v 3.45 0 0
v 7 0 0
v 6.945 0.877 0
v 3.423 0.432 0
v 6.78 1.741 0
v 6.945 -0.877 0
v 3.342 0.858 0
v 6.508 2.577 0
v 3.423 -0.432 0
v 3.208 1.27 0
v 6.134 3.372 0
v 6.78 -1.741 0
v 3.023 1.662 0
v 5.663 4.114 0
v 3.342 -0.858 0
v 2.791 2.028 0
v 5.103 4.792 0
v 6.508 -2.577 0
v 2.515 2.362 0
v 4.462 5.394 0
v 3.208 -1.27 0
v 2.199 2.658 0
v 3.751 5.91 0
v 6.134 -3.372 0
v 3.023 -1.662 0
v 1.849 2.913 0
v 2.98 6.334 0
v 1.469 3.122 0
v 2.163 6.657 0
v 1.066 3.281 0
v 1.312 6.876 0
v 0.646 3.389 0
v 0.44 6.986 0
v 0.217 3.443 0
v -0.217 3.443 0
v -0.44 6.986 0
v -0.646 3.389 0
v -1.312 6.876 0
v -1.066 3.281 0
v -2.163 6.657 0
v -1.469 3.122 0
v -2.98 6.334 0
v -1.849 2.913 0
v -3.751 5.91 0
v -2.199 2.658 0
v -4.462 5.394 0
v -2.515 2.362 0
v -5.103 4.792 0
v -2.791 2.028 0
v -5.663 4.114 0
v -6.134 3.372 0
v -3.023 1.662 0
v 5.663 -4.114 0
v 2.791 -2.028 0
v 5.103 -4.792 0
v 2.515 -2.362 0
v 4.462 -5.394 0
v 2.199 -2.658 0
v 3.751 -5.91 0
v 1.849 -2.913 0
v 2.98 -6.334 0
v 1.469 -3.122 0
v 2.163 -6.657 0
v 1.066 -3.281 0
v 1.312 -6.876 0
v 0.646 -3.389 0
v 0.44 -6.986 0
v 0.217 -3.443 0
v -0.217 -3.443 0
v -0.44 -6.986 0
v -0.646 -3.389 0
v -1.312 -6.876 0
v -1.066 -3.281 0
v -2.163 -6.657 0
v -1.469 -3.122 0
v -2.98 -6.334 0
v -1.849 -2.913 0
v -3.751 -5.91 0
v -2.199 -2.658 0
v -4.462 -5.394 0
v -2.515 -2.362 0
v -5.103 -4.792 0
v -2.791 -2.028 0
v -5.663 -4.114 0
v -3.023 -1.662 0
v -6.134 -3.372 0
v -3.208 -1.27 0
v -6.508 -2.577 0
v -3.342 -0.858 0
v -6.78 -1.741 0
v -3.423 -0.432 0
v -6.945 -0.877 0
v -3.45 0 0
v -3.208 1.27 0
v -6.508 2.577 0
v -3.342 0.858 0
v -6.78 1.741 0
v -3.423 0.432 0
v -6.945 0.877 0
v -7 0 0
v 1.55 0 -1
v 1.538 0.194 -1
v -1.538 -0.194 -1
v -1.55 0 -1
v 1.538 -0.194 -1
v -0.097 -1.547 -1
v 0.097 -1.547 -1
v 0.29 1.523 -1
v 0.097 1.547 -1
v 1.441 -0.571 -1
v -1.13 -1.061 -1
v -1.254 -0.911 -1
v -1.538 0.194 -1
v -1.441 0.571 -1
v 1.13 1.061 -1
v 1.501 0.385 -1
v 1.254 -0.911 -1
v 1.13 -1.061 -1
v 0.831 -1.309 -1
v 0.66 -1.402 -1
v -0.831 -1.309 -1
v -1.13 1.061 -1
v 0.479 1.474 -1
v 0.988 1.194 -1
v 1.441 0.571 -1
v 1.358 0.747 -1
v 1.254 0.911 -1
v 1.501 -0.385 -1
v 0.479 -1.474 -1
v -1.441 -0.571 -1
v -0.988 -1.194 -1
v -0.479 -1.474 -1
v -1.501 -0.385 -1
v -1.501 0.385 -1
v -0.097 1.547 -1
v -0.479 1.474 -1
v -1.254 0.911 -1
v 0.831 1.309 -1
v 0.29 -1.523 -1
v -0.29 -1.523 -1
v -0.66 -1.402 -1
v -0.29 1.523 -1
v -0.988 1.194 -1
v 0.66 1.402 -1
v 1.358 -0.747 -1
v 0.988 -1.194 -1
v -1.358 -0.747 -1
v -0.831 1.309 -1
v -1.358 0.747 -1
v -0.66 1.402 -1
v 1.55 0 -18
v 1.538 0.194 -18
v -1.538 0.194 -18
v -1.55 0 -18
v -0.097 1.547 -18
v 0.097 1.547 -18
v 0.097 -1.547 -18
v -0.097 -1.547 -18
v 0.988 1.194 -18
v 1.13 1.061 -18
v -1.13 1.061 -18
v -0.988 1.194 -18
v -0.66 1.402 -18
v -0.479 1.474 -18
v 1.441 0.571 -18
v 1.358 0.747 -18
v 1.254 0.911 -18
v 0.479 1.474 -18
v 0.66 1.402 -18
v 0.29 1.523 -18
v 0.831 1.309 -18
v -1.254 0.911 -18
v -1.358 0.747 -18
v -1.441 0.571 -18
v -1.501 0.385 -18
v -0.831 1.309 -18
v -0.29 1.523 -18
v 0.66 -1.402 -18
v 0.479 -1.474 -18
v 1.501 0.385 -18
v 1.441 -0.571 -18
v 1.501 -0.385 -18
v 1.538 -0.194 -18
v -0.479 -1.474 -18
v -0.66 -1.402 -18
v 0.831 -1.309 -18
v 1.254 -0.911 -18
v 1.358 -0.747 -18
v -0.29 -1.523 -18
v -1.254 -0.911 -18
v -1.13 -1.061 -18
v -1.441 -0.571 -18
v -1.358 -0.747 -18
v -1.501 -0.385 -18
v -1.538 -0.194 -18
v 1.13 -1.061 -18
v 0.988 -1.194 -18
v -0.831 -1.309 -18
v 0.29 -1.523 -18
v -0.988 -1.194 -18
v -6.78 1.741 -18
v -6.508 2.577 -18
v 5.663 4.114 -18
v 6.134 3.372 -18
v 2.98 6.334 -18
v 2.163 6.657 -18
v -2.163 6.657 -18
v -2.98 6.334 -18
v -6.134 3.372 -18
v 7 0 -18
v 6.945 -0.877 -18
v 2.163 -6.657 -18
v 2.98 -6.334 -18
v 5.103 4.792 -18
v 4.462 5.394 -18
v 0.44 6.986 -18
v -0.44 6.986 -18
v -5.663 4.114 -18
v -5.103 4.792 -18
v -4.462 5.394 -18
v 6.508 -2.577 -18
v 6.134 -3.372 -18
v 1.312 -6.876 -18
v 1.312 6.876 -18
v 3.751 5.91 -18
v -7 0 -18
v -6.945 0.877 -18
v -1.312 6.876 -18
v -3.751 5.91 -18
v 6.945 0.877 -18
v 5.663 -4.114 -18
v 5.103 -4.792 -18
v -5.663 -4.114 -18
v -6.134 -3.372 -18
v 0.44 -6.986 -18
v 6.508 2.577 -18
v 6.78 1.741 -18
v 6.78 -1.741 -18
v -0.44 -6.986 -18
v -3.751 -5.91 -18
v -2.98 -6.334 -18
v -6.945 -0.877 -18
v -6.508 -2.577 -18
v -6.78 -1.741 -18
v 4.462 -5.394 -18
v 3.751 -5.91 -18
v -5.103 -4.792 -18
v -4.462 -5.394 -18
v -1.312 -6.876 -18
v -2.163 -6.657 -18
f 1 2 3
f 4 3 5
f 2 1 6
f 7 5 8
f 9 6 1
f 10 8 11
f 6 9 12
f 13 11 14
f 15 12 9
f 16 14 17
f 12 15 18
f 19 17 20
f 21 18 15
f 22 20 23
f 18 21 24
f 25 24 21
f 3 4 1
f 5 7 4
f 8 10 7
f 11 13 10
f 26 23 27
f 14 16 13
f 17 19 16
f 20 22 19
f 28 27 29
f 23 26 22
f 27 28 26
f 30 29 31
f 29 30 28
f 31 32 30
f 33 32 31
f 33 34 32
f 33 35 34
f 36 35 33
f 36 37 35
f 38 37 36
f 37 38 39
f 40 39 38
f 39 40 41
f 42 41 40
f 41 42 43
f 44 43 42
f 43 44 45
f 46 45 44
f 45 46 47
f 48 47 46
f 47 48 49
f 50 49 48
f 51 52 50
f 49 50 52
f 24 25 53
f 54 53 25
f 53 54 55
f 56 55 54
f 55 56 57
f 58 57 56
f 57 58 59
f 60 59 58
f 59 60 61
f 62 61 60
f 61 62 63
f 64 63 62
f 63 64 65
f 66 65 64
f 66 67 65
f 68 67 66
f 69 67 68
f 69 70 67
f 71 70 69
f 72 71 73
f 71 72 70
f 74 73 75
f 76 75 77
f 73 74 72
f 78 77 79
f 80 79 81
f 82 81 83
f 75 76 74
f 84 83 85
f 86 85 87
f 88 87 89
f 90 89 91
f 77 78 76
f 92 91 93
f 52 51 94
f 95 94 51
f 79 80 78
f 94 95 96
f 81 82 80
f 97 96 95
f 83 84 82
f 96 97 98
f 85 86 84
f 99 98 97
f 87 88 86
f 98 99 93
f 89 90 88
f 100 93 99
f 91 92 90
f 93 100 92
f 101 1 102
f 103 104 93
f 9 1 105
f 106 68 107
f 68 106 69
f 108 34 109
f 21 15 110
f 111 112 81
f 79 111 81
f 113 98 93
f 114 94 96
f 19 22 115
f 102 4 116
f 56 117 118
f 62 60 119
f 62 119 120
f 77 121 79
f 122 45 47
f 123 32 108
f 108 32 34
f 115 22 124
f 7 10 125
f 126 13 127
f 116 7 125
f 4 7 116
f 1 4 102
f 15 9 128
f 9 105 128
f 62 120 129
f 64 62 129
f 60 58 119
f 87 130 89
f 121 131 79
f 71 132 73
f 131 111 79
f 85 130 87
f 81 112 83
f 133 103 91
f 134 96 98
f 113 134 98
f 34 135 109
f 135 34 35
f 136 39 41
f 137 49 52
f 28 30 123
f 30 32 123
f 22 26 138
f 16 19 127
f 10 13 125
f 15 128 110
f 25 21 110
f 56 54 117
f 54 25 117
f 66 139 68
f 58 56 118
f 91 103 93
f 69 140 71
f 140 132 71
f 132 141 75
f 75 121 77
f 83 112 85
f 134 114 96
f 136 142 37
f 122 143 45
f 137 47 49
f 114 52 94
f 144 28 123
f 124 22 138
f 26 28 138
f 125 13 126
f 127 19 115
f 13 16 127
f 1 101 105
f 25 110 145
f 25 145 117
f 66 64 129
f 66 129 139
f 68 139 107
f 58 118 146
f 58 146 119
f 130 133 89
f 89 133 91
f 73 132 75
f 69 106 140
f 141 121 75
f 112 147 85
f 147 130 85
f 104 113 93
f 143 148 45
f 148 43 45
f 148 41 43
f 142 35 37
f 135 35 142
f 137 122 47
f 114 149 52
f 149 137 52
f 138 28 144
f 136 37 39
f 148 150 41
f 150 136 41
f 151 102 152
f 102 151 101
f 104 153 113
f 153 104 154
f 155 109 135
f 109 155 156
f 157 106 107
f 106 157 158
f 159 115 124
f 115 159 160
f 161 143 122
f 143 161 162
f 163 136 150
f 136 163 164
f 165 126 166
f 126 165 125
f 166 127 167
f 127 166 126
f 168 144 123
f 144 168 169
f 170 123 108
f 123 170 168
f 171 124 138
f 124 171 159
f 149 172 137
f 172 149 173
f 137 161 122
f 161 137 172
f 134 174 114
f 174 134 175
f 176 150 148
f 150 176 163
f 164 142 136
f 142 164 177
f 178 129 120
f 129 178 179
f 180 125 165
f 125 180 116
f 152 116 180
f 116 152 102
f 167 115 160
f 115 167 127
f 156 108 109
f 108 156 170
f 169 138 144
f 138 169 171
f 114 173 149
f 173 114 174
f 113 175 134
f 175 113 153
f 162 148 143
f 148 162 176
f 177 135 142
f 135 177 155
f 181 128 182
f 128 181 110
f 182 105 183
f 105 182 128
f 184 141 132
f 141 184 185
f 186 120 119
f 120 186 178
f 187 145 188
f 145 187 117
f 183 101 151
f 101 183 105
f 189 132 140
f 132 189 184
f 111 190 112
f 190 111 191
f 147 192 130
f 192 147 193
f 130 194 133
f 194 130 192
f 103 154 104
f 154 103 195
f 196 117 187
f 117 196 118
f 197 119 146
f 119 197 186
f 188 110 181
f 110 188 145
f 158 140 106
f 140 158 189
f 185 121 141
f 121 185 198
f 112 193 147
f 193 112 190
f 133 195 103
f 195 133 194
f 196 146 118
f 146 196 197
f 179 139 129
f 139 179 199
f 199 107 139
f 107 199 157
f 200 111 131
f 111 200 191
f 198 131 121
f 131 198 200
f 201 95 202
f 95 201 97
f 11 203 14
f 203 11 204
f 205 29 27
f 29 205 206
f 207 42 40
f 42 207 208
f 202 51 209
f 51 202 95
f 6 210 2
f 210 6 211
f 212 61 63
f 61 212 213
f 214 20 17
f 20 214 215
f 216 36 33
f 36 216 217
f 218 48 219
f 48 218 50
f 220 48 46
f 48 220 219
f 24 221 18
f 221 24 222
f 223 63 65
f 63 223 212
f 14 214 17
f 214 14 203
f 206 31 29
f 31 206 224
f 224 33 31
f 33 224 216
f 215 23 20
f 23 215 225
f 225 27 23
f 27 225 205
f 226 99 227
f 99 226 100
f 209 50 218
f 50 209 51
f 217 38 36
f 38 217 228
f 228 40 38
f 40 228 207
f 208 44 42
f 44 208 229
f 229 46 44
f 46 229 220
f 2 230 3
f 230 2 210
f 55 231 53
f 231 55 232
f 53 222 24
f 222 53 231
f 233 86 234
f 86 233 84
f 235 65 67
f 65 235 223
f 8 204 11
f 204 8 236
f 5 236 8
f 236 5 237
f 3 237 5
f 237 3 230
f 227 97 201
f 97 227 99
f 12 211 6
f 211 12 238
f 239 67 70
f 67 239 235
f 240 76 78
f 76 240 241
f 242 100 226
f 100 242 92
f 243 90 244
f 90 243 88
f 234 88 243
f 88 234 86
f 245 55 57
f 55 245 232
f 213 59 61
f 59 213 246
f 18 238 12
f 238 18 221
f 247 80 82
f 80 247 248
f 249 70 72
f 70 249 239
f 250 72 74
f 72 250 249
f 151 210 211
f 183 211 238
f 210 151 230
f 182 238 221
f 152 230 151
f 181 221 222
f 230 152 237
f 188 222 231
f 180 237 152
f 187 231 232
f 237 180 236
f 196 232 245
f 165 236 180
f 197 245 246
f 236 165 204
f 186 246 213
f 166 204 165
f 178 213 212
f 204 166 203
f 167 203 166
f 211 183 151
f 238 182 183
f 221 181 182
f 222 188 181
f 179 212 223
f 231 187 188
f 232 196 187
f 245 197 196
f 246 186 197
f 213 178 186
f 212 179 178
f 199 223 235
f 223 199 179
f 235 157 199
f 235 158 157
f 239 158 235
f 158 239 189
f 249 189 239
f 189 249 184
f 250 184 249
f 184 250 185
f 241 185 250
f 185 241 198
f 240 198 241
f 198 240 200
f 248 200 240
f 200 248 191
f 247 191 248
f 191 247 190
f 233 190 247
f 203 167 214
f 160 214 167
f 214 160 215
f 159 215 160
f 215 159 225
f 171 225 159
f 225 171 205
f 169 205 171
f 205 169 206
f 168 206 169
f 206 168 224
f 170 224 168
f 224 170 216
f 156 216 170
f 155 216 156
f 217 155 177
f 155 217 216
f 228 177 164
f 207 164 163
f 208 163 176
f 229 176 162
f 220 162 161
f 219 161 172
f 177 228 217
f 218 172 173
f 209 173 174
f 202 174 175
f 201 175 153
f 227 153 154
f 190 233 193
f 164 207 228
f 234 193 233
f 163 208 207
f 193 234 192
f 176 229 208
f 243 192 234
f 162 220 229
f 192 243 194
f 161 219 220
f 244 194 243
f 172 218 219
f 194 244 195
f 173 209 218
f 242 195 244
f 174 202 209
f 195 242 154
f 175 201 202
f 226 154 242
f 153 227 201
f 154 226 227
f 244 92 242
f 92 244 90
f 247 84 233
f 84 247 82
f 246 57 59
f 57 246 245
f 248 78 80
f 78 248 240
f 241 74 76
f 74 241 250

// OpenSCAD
$fn = 50;


difference() {
	union() {
		translate(v = [0, 0, -18.0000000000]) {
			cylinder(h = 18, r = 7.0000000000);
		}
	}
	union() {
		translate(v = [0, 0, 0]) {
			rotate(a = [0, 0, 0]) {
				difference() {
					union() {
						translate(v = [0, 0, -21.0000000000]) {
							cylinder(h = 21, r = 1.2500000000);
						}
						translate(v = [0, 0, -1.0000000000]) {
							cylinder(h = 1.0000000000, r1 = 1.5500000000, r2 = 3.4500000000);
						}
						translate(v = [0, 0, -21.0000000000]) {
							cylinder(h = 21, r = 1.5500000000);
						}
						translate(v = [0, 0, -21.0000000000]) {
							cylinder(h = 21, r = 1.2500000000);
						}
					}
					union();
				}
			}
		}
	}
}
